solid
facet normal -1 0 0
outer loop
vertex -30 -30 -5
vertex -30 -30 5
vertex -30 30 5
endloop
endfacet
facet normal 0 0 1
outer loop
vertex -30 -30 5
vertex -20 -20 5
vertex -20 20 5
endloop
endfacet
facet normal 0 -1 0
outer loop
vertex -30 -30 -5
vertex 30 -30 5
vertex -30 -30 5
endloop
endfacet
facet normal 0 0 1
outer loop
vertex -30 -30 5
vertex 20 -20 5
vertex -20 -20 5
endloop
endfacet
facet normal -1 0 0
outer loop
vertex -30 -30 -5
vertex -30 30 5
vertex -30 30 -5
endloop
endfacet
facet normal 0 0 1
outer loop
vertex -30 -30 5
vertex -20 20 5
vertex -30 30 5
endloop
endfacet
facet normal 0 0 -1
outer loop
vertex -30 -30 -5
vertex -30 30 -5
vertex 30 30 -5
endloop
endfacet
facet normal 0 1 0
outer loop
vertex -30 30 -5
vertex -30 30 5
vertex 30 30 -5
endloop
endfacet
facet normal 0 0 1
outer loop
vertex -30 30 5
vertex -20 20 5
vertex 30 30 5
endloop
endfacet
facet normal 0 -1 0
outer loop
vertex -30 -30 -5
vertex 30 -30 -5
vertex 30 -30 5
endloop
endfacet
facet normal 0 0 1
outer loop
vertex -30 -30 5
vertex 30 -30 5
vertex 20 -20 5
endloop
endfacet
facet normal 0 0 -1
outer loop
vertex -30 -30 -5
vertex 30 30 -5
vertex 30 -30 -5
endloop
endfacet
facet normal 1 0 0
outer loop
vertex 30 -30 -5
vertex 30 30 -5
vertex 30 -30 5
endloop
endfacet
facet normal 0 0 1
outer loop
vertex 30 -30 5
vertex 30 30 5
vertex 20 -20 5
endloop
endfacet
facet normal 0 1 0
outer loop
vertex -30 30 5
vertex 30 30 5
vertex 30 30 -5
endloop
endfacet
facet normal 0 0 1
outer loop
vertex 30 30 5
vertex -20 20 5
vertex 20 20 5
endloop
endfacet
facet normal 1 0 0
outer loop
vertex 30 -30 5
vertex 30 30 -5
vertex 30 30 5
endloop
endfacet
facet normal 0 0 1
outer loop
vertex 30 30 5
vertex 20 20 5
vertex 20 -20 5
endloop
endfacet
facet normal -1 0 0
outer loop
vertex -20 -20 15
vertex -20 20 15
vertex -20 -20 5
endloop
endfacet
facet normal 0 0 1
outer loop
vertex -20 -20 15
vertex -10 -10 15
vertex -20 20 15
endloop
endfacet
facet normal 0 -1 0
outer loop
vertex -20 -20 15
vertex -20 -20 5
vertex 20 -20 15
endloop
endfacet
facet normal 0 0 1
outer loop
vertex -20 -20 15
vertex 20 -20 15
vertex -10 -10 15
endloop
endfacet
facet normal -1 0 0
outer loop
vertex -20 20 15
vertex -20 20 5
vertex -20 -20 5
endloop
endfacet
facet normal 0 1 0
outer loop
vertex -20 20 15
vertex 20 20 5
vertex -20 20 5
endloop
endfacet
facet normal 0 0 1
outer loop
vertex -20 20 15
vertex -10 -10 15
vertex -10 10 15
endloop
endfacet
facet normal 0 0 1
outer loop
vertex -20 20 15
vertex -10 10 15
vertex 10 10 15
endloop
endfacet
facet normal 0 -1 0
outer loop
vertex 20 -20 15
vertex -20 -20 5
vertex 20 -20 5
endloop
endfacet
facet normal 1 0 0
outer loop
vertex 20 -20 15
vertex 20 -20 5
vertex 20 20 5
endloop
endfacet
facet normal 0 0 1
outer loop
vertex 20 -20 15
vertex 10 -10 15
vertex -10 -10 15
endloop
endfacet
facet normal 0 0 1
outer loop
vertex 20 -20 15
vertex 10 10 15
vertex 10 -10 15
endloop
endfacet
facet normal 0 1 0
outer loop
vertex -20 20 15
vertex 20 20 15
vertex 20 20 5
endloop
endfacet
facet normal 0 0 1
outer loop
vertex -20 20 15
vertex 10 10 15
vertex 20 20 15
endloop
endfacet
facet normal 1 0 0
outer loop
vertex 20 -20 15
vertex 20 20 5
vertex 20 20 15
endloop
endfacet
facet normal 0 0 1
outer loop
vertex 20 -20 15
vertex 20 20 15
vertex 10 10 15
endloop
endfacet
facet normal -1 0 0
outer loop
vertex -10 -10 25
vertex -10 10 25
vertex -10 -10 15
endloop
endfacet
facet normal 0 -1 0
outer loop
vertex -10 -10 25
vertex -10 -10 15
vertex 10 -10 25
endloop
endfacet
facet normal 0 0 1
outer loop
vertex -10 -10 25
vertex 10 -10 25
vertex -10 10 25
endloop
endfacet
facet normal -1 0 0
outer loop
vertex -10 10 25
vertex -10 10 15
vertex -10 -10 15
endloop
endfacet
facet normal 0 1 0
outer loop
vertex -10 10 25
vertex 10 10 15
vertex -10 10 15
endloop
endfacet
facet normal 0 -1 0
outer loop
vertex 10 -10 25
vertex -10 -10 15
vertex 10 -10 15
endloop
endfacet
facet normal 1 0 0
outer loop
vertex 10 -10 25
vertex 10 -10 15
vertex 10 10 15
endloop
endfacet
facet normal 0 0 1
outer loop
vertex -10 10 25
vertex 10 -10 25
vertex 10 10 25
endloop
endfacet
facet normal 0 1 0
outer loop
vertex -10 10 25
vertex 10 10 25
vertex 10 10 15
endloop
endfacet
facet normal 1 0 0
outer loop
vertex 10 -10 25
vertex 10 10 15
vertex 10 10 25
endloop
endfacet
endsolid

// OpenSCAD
cube([60, 60, 10], center = true);

translate([0, 0, 10])
cube([40, 40, 10], center = true);

translate([0, 0, 20])
cube([20, 20, 10], center = true);
